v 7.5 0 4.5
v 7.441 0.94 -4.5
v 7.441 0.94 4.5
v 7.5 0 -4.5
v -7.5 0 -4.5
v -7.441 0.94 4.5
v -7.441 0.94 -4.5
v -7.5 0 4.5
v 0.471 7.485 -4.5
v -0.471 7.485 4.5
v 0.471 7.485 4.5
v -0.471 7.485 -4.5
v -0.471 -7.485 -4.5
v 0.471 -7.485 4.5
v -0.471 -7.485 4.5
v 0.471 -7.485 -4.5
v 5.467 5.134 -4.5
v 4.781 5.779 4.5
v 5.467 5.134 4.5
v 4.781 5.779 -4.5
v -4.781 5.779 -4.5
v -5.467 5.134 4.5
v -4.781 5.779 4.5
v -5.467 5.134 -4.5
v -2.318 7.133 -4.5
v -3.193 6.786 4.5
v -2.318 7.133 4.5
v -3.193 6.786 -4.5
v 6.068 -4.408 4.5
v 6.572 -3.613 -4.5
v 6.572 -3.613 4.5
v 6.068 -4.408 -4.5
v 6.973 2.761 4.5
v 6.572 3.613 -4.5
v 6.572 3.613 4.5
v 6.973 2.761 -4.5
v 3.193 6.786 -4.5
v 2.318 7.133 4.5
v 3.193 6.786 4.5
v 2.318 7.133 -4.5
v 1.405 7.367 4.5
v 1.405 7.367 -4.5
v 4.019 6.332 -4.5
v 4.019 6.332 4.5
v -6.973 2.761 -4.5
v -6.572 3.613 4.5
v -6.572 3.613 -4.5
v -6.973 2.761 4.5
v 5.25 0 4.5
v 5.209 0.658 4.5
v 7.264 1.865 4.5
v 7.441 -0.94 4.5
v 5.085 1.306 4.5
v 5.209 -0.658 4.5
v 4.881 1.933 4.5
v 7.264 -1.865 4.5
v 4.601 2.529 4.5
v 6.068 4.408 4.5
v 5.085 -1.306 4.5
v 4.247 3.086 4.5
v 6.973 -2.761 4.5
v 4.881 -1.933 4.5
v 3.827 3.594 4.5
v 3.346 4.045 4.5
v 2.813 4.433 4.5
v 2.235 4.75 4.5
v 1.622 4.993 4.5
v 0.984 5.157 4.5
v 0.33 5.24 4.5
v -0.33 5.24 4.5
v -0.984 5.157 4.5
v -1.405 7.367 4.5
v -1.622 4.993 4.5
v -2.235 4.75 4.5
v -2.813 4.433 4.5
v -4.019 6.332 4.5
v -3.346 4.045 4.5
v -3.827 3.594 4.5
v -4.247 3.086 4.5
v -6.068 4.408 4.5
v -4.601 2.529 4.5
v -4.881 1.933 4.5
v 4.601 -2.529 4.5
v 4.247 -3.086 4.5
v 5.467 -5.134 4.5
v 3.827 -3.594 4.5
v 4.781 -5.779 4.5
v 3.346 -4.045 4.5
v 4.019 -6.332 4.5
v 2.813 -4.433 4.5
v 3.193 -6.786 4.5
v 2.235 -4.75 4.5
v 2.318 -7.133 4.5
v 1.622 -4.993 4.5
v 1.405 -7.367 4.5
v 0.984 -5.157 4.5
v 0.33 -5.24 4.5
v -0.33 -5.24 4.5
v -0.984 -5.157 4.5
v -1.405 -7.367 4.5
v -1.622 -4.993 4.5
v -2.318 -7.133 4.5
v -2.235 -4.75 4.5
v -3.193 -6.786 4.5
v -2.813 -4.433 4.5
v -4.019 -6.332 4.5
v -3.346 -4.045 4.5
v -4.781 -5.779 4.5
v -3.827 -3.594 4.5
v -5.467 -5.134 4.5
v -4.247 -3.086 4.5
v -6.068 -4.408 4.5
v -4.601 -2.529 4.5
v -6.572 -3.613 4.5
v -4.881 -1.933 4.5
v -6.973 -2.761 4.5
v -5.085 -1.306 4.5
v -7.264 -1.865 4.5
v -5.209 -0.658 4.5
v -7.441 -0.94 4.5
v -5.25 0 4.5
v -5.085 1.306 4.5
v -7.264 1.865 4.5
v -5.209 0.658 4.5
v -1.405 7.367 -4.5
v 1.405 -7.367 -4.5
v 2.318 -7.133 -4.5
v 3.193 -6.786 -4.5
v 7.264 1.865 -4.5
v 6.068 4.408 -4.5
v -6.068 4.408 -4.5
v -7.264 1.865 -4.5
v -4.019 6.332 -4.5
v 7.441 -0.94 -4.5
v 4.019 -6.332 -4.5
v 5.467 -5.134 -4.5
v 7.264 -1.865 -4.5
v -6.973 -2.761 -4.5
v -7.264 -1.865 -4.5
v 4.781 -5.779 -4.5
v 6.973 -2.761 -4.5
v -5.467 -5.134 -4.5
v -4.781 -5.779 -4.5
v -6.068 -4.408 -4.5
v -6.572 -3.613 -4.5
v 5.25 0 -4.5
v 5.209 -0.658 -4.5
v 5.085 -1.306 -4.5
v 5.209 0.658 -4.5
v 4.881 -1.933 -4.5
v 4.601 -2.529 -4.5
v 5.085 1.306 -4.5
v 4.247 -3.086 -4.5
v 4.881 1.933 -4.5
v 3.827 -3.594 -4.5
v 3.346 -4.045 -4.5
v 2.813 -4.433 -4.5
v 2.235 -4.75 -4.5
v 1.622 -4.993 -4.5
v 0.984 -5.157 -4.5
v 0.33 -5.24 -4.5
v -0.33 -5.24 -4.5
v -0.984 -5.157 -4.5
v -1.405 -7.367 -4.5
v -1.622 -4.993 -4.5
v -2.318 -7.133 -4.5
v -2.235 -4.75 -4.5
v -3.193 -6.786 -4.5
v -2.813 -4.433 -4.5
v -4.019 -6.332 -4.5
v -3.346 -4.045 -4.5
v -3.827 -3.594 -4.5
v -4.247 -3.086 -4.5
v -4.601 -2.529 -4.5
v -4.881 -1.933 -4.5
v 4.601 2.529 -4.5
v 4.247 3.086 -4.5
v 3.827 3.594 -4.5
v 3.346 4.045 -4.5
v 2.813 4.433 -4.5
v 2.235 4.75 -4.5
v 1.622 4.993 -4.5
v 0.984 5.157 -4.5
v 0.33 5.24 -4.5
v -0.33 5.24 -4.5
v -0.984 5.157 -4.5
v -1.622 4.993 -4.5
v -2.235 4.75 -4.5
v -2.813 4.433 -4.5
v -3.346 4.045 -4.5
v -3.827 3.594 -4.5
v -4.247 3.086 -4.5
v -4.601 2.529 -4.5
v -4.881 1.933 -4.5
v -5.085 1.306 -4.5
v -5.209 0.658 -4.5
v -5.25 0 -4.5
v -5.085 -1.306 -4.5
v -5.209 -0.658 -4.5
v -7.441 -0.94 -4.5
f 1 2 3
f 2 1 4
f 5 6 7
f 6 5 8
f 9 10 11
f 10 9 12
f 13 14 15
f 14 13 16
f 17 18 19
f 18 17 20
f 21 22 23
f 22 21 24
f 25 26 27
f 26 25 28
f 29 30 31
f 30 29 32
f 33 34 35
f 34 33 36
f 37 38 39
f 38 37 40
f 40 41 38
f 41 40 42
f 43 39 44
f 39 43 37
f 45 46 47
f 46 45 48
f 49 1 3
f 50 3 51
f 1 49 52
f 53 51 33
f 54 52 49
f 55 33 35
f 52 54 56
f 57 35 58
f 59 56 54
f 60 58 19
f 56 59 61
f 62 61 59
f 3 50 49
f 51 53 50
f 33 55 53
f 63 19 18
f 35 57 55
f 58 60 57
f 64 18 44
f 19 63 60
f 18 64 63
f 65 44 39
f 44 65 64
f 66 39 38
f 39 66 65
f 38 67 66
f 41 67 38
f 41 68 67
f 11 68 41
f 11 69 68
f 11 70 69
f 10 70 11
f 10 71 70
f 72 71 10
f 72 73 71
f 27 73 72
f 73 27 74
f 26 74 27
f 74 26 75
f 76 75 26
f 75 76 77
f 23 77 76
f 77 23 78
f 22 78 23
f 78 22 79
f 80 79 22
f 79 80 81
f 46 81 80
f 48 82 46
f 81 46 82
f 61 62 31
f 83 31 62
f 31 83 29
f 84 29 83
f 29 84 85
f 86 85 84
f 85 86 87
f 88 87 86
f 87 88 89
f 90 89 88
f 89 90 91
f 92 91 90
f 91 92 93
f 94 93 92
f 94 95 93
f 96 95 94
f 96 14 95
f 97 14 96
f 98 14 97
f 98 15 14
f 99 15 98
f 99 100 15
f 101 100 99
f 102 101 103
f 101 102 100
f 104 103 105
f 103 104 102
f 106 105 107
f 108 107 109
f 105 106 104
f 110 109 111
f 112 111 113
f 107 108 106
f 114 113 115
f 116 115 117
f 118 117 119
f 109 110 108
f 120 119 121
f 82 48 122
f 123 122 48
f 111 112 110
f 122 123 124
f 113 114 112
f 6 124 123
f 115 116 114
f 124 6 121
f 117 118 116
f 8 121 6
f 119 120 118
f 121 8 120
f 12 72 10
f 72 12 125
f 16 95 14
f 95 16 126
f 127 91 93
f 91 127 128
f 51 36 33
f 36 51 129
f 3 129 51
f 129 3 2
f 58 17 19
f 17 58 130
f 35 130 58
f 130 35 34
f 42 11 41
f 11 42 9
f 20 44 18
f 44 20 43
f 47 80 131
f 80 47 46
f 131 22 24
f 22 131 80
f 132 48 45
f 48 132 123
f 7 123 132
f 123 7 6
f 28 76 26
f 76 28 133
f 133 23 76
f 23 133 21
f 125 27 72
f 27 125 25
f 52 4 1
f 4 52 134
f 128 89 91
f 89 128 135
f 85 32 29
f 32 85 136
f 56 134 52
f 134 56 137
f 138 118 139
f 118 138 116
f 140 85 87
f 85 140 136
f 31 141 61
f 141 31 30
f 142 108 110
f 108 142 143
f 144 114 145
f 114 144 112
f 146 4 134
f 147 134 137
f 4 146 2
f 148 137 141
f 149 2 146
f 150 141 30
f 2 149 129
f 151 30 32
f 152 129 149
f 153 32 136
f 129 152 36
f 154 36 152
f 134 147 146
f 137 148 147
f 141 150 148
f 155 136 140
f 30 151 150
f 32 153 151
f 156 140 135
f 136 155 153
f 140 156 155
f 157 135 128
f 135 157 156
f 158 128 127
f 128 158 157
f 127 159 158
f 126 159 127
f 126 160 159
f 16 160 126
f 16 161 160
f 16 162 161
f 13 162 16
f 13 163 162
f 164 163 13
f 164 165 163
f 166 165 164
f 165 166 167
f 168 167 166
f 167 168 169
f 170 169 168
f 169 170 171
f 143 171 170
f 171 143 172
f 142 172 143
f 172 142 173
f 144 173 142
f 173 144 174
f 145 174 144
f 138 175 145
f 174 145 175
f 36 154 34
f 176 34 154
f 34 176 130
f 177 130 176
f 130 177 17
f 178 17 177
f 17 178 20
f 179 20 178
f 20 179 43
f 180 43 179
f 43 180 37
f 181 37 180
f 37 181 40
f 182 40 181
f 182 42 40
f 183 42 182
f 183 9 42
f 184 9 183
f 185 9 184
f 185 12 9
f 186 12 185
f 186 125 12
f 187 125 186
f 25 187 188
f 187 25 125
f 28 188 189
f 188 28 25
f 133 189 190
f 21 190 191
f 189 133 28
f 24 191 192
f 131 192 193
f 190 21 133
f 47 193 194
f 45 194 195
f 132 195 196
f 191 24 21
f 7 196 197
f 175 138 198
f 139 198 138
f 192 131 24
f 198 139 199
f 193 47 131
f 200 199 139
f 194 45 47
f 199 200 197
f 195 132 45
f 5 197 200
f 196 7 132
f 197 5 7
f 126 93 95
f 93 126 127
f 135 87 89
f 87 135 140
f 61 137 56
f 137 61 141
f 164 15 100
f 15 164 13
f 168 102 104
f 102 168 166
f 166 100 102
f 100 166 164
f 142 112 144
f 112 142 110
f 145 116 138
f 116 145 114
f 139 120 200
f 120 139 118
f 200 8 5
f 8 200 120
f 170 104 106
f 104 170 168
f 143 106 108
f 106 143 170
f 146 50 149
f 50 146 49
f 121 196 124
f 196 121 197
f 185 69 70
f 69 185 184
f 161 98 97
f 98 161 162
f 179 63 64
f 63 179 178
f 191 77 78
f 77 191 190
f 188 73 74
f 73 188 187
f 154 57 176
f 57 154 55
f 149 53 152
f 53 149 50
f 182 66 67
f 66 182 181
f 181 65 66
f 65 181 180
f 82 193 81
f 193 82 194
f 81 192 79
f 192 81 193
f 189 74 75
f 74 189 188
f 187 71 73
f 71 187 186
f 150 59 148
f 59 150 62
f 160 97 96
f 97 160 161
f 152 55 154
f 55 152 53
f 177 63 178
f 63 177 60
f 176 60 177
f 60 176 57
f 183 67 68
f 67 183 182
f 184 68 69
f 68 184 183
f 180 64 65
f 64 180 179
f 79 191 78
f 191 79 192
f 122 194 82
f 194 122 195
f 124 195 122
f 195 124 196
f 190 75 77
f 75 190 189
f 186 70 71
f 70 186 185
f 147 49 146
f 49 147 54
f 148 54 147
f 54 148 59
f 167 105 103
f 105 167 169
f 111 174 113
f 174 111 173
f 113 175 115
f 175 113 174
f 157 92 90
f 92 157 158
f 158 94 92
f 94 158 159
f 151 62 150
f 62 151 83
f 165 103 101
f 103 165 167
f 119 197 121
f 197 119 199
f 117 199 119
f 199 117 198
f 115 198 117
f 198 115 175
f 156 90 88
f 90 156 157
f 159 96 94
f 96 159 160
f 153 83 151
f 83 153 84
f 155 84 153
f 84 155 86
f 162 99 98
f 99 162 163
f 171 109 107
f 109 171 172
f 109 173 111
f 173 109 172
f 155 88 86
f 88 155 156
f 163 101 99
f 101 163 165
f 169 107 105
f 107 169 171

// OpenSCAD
$fn = 50;


difference() {
	union() {
		translate(v = [0, 0, -4.5000000000]) {
			cylinder(h = 9, r = 7.5000000000);
		}
	}
	union() {
		translate(v = [0, 0, -100.0000000000]) {
			cylinder(h = 200, r = 5.2500000000);
		}
	}
}
